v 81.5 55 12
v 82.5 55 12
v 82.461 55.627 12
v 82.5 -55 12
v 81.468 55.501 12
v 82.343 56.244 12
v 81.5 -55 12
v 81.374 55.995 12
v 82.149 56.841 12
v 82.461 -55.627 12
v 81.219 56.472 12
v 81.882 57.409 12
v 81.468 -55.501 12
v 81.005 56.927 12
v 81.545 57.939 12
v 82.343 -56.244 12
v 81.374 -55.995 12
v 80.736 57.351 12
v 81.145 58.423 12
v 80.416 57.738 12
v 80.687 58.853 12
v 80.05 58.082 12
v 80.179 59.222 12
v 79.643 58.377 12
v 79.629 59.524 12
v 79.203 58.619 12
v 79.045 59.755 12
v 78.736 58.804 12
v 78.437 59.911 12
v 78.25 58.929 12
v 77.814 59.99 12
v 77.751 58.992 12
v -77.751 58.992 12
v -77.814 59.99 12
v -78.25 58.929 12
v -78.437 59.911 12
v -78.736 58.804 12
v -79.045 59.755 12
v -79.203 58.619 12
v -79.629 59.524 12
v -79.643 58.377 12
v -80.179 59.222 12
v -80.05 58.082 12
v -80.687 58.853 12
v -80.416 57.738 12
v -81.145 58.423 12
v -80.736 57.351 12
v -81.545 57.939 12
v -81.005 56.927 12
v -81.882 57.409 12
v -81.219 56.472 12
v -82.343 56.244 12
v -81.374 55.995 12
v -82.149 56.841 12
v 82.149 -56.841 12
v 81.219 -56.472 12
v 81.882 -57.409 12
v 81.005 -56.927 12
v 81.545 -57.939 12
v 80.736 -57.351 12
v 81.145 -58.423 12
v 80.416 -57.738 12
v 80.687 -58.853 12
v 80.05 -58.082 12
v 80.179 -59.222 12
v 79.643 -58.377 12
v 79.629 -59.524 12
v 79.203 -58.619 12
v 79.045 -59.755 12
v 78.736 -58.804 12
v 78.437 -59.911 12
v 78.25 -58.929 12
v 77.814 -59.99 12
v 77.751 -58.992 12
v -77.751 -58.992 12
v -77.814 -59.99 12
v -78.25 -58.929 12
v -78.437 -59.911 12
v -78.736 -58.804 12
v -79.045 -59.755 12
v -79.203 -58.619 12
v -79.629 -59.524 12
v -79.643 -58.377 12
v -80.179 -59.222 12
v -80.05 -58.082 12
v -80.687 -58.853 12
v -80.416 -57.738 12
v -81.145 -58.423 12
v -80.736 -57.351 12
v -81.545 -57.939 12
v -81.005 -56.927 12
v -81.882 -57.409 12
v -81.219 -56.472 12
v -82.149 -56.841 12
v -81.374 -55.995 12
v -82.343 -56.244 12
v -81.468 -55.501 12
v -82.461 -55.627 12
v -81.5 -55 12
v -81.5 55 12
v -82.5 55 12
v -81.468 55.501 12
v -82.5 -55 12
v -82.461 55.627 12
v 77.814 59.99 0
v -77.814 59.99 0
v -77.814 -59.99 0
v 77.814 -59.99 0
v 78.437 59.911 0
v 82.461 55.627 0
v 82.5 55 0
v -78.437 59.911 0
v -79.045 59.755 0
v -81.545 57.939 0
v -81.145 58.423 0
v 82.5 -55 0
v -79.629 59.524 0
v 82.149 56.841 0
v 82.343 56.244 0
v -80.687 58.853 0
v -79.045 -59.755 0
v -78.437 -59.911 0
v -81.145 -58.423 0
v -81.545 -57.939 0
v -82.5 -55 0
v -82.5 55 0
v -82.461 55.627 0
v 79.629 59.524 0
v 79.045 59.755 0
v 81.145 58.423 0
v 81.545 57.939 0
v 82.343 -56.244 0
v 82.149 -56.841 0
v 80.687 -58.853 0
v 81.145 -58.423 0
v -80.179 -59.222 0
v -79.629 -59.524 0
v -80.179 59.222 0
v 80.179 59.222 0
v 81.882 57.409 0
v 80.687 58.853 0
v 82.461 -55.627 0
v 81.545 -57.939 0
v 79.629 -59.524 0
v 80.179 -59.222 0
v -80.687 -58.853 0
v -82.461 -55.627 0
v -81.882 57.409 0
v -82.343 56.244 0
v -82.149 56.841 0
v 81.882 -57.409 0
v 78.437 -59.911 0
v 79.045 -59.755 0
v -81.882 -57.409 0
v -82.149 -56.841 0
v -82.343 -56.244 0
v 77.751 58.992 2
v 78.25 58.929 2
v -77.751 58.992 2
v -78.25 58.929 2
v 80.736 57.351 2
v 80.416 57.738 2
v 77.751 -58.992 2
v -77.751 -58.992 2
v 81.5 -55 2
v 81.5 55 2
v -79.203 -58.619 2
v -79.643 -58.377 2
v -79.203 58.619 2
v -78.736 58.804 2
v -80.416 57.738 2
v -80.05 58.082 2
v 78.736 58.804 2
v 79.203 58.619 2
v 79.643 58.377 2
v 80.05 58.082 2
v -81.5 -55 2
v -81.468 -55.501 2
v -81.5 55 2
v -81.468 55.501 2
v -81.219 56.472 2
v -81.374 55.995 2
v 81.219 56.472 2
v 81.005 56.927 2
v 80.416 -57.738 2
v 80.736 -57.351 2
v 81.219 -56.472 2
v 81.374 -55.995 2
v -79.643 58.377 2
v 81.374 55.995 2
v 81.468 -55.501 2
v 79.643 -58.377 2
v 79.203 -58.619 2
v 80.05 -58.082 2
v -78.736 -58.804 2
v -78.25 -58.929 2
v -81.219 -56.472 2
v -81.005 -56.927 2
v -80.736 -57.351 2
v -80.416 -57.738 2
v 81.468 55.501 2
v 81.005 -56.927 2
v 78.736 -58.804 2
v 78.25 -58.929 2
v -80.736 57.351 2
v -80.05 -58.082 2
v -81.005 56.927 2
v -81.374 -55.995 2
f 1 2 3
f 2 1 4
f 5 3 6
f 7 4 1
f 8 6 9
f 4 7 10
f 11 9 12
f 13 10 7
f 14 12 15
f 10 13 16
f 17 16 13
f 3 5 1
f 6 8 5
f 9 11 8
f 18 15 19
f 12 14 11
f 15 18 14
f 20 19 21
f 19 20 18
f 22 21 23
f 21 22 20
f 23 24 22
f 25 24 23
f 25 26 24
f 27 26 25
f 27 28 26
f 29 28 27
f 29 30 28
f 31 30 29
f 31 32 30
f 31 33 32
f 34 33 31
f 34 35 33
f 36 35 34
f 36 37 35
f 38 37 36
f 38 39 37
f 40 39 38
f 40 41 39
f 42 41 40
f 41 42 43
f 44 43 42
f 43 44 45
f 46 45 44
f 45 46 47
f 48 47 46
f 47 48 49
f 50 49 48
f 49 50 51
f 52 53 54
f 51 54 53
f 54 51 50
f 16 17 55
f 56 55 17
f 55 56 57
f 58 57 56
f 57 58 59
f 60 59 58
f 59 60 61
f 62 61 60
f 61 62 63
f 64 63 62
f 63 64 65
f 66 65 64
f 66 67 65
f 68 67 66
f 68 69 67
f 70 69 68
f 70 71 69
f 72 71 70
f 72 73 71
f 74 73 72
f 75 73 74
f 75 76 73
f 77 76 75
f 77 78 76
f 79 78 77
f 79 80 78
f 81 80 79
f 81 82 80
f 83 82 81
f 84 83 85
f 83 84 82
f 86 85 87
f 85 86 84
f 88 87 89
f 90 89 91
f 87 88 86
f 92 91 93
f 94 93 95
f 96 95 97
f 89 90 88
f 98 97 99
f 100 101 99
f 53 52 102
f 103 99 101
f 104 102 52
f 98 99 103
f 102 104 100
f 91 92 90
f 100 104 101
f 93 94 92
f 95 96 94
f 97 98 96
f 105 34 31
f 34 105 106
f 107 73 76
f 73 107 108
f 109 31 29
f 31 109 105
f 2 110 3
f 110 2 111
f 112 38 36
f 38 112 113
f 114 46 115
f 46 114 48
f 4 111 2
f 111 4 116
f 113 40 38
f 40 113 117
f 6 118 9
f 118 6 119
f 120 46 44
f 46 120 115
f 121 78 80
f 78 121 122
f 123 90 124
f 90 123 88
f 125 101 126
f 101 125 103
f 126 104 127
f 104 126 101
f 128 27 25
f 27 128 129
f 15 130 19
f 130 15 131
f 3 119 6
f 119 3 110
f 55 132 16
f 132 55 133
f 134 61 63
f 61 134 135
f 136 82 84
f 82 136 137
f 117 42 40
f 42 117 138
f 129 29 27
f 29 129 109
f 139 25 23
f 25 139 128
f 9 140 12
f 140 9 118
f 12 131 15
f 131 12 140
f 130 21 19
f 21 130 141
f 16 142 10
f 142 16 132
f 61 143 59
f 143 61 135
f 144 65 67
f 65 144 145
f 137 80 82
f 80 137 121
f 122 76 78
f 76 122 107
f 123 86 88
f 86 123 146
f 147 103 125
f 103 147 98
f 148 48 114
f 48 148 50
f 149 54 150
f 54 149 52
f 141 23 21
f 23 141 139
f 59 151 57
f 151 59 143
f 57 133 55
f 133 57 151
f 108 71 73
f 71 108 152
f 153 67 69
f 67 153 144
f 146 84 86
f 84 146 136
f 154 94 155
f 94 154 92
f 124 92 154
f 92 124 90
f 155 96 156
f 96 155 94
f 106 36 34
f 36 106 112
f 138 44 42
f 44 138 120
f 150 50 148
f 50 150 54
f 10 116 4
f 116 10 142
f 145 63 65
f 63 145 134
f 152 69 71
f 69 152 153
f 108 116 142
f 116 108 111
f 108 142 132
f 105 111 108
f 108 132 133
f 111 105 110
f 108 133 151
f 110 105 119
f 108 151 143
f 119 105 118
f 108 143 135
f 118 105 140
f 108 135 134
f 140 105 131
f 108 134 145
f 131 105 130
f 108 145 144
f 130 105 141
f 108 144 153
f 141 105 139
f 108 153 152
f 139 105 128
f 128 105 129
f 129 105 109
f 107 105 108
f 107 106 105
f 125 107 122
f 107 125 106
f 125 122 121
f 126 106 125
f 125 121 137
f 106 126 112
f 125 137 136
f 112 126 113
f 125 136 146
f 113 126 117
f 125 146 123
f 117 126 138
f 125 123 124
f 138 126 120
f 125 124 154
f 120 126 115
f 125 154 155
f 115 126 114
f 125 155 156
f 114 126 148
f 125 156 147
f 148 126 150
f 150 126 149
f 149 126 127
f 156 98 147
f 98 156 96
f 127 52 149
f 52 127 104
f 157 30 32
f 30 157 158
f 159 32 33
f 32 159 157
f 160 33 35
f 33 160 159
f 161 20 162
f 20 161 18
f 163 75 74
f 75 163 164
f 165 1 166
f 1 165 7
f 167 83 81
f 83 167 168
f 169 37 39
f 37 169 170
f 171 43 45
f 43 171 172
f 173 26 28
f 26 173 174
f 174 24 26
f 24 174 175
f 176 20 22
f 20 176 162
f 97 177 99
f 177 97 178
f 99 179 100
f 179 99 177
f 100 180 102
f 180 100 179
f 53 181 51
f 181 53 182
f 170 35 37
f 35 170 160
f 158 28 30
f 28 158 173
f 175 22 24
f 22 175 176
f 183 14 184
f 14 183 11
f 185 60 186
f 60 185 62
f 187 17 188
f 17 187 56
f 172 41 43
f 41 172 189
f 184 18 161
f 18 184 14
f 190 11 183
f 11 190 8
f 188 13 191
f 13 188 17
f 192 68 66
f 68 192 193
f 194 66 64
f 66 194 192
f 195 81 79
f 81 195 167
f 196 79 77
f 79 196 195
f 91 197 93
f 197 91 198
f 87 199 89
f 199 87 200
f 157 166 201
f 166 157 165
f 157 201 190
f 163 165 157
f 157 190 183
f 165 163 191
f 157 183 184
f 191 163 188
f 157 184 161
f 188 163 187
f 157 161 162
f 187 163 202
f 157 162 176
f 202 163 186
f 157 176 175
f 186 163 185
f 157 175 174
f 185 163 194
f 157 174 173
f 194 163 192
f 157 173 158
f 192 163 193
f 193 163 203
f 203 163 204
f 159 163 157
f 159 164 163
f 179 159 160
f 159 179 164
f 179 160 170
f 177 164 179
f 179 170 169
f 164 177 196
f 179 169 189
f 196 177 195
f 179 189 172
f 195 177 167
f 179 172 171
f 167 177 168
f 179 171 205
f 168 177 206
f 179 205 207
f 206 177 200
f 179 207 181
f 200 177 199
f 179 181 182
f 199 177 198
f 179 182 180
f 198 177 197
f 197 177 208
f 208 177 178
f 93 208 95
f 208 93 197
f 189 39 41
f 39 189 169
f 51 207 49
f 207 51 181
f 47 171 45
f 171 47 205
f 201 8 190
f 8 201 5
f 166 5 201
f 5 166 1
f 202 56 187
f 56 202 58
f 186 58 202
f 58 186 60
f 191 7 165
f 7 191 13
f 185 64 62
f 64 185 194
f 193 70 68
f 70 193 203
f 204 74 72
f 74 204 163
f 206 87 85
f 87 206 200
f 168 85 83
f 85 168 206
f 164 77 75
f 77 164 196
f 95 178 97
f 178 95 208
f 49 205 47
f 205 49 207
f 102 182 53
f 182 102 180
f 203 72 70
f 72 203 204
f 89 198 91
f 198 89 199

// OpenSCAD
$fn = 50;


difference() {
	union() {
		hull() {
			translate(v = [-77.5000000000, 55.0000000000, 0]) {
				cylinder(h = 12, r = 5);
			}
			translate(v = [77.5000000000, 55.0000000000, 0]) {
				cylinder(h = 12, r = 5);
			}
			translate(v = [-77.5000000000, -55.0000000000, 0]) {
				cylinder(h = 12, r = 5);
			}
			translate(v = [77.5000000000, -55.0000000000, 0]) {
				cylinder(h = 12, r = 5);
			}
		}
	}
	union() {
		translate(v = [0, 0, 2]) {
			hull() {
				translate(v = [-77.5000000000, 55.0000000000, 0]) {
					cylinder(h = 10, r = 4);
				}
				translate(v = [77.5000000000, 55.0000000000, 0]) {
					cylinder(h = 10, r = 4);
				}
				translate(v = [-77.5000000000, -55.0000000000, 0]) {
					cylinder(h = 10, r = 4);
				}
				translate(v = [77.5000000000, -55.0000000000, 0]) {
					cylinder(h = 10, r = 4);
				}
			}
		}
	}
}
